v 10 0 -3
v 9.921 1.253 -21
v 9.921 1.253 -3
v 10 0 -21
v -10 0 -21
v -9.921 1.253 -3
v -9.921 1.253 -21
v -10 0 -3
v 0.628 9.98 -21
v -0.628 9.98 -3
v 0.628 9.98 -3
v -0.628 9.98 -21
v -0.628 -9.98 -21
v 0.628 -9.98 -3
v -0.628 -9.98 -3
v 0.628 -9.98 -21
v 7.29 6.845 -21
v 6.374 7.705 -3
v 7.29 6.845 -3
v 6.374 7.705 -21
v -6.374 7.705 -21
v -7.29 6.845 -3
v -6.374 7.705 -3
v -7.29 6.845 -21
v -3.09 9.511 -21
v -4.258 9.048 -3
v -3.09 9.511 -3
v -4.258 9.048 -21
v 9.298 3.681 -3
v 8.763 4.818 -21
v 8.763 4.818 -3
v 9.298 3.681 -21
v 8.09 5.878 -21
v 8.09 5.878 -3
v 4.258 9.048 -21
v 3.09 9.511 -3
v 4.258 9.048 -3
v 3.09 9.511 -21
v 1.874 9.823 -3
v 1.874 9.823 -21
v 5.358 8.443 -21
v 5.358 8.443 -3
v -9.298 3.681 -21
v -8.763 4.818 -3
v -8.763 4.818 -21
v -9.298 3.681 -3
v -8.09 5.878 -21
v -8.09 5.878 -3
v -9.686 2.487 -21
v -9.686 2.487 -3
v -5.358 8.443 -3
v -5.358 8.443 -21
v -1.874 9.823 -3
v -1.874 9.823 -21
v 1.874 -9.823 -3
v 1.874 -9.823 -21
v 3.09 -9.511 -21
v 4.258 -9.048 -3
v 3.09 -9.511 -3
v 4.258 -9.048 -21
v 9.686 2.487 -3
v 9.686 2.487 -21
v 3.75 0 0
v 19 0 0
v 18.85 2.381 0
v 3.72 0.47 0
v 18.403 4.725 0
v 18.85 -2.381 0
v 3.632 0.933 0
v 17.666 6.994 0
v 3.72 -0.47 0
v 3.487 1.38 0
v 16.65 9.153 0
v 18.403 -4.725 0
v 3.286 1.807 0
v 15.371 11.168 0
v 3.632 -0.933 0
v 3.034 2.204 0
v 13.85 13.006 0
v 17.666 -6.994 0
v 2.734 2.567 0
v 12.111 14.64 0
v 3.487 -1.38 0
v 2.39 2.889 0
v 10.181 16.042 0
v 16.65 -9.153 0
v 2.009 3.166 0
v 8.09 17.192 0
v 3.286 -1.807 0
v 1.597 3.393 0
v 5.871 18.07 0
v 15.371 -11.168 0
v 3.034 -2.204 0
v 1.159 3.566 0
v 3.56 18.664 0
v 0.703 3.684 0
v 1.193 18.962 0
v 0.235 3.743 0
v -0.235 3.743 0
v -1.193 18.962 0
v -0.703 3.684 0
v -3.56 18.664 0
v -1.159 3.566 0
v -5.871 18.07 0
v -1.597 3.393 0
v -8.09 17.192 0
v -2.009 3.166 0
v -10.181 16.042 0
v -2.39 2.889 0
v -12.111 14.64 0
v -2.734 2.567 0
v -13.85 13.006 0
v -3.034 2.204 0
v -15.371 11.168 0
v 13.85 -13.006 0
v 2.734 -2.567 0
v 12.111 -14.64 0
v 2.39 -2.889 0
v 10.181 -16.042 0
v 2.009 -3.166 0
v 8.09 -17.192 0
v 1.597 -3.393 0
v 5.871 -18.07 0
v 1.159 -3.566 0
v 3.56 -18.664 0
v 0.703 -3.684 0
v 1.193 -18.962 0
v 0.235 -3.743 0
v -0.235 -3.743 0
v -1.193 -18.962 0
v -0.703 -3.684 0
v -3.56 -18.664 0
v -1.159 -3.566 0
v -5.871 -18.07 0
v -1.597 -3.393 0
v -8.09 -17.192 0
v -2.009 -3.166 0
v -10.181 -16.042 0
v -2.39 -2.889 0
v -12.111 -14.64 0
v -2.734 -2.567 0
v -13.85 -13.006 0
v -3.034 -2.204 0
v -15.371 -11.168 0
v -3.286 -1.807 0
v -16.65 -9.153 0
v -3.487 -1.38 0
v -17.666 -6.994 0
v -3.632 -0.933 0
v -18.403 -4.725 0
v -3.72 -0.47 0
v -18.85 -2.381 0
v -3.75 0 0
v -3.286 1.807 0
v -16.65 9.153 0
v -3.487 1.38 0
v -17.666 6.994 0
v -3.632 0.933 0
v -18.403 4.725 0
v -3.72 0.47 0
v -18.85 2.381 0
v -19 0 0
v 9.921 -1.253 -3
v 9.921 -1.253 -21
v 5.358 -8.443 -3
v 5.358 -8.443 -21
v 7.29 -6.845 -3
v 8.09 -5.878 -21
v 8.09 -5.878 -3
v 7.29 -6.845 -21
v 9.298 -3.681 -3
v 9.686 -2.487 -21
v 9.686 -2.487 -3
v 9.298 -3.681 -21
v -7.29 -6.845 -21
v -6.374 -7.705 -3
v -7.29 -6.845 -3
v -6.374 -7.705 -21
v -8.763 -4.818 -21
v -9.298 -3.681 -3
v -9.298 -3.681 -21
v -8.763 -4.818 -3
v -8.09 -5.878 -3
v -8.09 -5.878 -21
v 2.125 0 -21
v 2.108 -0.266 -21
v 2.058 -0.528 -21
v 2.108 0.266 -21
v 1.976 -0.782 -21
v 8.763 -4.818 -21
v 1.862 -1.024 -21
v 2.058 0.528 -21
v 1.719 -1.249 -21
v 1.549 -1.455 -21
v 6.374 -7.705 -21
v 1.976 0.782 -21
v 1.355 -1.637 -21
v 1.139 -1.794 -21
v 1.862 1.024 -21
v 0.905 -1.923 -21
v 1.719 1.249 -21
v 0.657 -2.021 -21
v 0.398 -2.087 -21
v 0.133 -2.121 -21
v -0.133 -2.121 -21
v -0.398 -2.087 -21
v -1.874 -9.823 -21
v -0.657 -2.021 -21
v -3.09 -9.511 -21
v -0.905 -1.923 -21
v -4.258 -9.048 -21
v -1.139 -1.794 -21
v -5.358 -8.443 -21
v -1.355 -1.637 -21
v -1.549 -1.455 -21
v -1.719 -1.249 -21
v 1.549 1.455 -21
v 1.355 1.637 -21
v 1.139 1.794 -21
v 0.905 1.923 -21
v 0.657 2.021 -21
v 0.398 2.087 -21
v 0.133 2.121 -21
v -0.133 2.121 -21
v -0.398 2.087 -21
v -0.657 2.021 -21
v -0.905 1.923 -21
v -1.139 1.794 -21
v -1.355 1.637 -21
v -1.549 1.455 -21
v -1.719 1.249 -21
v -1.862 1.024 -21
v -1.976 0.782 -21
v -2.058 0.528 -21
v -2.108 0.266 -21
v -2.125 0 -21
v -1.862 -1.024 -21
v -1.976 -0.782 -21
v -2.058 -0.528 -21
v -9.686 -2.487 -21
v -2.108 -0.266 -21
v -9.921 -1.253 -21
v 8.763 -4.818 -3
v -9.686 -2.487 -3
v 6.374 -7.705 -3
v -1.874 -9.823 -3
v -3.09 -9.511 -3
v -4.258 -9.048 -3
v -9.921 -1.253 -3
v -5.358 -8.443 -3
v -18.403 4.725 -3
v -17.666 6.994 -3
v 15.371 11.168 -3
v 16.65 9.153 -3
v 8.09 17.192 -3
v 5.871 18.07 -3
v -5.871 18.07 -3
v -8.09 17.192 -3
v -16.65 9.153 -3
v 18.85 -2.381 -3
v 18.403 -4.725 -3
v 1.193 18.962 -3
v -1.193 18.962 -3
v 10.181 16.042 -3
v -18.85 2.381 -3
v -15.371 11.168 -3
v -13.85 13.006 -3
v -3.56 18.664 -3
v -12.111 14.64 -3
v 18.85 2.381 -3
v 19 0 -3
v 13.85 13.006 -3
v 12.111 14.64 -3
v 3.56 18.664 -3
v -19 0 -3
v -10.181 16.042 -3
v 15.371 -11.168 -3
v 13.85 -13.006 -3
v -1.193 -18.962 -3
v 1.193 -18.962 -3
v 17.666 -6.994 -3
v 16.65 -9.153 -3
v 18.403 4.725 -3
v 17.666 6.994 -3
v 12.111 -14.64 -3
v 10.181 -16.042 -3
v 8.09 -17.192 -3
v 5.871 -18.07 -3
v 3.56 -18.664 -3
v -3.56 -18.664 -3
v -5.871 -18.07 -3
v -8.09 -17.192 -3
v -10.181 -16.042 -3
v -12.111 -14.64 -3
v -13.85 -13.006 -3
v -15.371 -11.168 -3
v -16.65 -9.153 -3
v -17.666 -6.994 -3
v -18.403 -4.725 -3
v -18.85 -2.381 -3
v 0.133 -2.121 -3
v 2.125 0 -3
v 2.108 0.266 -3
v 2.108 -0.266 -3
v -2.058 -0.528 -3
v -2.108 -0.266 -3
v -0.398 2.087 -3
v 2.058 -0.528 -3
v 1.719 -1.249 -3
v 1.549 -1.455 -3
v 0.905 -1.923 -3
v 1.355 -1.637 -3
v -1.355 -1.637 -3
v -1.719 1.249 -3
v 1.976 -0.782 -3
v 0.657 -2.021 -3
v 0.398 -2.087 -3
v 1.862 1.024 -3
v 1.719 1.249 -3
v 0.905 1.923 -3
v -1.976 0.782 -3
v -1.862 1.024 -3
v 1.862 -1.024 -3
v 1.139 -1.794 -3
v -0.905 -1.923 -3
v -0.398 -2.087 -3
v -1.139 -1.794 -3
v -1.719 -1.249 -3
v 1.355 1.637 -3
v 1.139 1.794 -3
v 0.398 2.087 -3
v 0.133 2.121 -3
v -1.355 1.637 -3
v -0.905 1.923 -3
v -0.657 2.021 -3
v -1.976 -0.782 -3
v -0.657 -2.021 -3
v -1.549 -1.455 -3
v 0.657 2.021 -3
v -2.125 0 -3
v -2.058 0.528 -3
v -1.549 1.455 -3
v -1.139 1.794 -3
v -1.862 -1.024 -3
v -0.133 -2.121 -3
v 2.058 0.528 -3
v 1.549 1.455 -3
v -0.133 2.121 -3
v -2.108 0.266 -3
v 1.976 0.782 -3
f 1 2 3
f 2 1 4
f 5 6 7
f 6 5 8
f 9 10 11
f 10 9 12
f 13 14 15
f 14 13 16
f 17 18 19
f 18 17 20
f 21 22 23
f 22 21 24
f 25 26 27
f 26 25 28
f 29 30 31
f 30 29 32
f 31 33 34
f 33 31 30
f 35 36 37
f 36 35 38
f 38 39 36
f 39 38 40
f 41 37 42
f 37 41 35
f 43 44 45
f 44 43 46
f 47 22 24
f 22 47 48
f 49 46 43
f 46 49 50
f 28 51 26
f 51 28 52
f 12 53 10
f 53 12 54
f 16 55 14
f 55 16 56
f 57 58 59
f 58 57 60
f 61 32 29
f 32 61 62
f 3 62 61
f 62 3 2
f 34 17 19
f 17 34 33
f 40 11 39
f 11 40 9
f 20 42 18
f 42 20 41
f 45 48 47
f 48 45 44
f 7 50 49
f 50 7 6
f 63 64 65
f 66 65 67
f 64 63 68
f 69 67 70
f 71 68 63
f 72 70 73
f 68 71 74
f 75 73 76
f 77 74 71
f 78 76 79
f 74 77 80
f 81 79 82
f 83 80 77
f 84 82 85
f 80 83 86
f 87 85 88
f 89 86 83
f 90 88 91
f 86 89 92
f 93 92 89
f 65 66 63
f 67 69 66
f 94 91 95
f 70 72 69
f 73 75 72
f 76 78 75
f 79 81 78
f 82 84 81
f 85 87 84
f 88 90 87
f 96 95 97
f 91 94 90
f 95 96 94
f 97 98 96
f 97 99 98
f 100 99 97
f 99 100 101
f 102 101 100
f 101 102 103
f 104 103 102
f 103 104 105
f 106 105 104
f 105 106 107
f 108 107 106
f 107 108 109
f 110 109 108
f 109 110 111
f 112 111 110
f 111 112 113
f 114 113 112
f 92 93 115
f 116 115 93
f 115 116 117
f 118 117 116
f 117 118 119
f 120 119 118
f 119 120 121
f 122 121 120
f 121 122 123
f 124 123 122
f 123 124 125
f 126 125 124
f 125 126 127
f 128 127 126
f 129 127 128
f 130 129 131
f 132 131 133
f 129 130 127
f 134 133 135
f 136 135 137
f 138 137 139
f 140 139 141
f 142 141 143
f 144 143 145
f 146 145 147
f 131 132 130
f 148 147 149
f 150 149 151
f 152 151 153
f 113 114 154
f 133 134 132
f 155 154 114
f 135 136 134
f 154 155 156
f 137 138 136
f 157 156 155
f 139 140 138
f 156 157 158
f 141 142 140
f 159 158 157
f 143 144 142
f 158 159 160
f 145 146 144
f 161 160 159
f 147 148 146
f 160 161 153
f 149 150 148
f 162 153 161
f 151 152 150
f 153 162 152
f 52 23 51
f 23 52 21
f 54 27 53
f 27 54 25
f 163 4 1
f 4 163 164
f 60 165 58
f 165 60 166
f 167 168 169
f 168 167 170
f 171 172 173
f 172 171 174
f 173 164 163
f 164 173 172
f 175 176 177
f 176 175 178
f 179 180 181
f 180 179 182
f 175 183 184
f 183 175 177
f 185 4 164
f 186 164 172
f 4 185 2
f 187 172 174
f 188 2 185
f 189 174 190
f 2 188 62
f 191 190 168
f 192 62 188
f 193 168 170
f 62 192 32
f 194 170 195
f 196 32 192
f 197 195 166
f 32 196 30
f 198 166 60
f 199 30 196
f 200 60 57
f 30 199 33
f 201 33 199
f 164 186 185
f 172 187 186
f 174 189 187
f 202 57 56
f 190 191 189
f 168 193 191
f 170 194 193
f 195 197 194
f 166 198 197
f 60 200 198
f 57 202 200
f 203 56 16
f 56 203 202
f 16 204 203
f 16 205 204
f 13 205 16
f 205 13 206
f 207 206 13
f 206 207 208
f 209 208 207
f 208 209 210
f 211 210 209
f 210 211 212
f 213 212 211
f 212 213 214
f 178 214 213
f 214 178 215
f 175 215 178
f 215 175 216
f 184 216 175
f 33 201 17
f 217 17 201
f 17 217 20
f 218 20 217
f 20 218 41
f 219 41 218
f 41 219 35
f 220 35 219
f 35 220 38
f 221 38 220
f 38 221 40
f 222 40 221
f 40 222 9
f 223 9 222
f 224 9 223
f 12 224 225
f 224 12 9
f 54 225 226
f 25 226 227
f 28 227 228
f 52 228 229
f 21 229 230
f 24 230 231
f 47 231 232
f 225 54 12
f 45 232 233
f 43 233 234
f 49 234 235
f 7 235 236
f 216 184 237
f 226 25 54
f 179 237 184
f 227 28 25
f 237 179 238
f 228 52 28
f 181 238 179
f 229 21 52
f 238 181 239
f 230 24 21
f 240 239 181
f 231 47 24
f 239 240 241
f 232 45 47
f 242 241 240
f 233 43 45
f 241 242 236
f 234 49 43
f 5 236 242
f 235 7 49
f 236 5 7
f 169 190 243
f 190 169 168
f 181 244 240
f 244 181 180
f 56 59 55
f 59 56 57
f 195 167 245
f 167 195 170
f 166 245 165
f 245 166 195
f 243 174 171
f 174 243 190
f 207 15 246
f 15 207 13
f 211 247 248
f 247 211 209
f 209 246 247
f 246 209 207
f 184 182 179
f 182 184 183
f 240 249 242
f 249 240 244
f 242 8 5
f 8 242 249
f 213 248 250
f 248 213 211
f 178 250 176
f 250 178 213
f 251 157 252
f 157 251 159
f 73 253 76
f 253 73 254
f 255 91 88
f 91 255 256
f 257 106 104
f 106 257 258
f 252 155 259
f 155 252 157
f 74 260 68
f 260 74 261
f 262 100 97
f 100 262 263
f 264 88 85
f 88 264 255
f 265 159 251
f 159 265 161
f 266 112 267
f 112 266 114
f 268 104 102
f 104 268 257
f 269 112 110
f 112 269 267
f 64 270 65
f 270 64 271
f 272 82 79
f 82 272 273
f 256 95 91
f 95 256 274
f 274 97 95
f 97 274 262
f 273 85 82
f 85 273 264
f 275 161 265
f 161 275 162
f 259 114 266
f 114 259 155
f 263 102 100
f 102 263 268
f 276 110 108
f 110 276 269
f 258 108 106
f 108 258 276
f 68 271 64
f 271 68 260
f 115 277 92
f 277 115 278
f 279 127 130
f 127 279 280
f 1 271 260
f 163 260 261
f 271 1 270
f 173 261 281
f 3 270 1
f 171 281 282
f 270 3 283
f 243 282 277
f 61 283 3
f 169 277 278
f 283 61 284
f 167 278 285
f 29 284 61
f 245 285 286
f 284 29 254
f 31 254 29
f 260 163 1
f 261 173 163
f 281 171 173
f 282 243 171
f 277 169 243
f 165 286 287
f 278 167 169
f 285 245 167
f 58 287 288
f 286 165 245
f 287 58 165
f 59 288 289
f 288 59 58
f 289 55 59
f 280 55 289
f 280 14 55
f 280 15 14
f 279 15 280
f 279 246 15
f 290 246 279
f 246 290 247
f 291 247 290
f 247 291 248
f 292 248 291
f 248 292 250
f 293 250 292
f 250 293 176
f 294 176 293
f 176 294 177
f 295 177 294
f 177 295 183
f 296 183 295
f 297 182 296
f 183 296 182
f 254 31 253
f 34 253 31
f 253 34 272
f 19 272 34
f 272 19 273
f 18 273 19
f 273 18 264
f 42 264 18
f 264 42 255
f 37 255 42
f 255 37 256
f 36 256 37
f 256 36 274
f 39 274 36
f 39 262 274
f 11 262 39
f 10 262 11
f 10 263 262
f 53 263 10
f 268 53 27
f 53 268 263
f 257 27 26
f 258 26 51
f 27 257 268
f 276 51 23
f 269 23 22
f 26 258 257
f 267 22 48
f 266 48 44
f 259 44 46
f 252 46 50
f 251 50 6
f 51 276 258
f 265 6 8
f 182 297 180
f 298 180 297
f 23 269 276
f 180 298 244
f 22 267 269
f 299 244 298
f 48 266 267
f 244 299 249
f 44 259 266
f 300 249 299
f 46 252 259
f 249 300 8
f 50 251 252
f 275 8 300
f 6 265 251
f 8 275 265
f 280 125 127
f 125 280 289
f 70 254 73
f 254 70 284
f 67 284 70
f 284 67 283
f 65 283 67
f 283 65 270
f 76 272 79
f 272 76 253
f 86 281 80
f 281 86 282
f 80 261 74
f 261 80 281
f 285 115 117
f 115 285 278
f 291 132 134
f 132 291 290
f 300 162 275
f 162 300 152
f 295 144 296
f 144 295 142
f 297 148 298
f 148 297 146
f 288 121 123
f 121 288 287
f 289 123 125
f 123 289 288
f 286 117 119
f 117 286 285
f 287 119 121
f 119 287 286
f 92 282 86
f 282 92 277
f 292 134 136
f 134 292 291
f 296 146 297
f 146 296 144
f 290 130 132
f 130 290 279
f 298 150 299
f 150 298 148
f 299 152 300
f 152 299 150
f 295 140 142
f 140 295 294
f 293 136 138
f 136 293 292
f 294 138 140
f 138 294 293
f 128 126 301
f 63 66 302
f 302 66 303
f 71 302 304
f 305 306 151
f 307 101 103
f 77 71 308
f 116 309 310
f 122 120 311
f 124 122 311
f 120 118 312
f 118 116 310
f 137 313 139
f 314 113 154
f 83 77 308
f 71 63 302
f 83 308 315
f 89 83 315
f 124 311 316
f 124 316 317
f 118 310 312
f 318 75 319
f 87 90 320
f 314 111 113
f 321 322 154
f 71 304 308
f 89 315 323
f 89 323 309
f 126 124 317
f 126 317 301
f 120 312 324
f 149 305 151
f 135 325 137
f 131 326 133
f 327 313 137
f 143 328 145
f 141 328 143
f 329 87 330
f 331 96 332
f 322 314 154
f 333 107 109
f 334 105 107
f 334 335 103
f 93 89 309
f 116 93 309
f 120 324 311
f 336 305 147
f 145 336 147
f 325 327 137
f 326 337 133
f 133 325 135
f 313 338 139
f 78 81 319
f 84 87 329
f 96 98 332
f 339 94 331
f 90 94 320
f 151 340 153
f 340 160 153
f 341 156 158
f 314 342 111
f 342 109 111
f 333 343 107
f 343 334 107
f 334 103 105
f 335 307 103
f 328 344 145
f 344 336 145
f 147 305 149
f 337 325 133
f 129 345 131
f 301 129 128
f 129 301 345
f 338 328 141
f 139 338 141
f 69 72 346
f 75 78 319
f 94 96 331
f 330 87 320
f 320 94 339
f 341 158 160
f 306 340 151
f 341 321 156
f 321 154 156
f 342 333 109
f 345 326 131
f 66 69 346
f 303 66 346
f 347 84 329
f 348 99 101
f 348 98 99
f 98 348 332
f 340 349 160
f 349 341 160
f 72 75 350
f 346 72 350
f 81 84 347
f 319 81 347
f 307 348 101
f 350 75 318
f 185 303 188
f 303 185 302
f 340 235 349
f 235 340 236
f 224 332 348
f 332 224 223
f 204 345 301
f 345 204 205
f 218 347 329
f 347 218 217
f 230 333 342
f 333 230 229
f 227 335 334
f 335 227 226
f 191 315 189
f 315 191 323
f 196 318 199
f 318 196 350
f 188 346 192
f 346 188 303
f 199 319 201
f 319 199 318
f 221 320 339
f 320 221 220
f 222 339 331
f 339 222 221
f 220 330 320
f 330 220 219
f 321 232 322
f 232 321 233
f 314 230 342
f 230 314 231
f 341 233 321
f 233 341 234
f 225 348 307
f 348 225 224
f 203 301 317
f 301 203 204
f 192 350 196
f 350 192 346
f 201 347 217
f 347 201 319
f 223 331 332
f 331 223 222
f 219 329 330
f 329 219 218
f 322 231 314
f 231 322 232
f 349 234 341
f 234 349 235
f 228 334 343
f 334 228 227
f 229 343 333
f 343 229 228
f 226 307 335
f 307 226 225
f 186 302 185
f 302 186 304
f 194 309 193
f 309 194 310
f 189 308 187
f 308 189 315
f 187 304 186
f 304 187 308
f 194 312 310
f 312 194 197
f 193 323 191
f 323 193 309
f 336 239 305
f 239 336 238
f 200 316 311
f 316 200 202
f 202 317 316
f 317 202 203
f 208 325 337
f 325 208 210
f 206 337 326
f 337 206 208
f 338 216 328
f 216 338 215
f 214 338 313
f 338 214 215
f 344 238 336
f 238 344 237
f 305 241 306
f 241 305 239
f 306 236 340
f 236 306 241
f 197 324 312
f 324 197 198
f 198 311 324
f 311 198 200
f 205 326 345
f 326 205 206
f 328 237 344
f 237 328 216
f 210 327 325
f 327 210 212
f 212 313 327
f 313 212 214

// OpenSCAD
$fn = 50;


difference() {
	union() {
		translate(v = [0, 0, -21.0000000000]) {
			cylinder(h = 21, r = 10.0000000000);
		}
		translate(v = [0, 0, -3.0000000000]) {
			cylinder(h = 3, r = 19.0000000000);
		}
	}
	union() {
		translate(v = [0, 0, 0]) {
			rotate(a = [0, 0, 0]) {
				difference() {
					union() {
						#translate(v = [0, 0, -21.0000000000]) {
							cylinder(h = 21, r = 2.0000000000);
						}
						#translate(v = [0, 0, -3]) {
							cylinder(h = 3, r = 10.0000000000, r1 = 2.1250000000, r2 = 3.7500000000);
						}
						#translate(v = [0, 0, -21.0000000000]) {
							cylinder(h = 21, r = 2.1250000000);
						}
						#translate(v = [0, 0, -21.0000000000]) {
							cylinder(h = 21, r = 2.0000000000);
						}
					}
					union();
				}
			}
		}
	}
}
